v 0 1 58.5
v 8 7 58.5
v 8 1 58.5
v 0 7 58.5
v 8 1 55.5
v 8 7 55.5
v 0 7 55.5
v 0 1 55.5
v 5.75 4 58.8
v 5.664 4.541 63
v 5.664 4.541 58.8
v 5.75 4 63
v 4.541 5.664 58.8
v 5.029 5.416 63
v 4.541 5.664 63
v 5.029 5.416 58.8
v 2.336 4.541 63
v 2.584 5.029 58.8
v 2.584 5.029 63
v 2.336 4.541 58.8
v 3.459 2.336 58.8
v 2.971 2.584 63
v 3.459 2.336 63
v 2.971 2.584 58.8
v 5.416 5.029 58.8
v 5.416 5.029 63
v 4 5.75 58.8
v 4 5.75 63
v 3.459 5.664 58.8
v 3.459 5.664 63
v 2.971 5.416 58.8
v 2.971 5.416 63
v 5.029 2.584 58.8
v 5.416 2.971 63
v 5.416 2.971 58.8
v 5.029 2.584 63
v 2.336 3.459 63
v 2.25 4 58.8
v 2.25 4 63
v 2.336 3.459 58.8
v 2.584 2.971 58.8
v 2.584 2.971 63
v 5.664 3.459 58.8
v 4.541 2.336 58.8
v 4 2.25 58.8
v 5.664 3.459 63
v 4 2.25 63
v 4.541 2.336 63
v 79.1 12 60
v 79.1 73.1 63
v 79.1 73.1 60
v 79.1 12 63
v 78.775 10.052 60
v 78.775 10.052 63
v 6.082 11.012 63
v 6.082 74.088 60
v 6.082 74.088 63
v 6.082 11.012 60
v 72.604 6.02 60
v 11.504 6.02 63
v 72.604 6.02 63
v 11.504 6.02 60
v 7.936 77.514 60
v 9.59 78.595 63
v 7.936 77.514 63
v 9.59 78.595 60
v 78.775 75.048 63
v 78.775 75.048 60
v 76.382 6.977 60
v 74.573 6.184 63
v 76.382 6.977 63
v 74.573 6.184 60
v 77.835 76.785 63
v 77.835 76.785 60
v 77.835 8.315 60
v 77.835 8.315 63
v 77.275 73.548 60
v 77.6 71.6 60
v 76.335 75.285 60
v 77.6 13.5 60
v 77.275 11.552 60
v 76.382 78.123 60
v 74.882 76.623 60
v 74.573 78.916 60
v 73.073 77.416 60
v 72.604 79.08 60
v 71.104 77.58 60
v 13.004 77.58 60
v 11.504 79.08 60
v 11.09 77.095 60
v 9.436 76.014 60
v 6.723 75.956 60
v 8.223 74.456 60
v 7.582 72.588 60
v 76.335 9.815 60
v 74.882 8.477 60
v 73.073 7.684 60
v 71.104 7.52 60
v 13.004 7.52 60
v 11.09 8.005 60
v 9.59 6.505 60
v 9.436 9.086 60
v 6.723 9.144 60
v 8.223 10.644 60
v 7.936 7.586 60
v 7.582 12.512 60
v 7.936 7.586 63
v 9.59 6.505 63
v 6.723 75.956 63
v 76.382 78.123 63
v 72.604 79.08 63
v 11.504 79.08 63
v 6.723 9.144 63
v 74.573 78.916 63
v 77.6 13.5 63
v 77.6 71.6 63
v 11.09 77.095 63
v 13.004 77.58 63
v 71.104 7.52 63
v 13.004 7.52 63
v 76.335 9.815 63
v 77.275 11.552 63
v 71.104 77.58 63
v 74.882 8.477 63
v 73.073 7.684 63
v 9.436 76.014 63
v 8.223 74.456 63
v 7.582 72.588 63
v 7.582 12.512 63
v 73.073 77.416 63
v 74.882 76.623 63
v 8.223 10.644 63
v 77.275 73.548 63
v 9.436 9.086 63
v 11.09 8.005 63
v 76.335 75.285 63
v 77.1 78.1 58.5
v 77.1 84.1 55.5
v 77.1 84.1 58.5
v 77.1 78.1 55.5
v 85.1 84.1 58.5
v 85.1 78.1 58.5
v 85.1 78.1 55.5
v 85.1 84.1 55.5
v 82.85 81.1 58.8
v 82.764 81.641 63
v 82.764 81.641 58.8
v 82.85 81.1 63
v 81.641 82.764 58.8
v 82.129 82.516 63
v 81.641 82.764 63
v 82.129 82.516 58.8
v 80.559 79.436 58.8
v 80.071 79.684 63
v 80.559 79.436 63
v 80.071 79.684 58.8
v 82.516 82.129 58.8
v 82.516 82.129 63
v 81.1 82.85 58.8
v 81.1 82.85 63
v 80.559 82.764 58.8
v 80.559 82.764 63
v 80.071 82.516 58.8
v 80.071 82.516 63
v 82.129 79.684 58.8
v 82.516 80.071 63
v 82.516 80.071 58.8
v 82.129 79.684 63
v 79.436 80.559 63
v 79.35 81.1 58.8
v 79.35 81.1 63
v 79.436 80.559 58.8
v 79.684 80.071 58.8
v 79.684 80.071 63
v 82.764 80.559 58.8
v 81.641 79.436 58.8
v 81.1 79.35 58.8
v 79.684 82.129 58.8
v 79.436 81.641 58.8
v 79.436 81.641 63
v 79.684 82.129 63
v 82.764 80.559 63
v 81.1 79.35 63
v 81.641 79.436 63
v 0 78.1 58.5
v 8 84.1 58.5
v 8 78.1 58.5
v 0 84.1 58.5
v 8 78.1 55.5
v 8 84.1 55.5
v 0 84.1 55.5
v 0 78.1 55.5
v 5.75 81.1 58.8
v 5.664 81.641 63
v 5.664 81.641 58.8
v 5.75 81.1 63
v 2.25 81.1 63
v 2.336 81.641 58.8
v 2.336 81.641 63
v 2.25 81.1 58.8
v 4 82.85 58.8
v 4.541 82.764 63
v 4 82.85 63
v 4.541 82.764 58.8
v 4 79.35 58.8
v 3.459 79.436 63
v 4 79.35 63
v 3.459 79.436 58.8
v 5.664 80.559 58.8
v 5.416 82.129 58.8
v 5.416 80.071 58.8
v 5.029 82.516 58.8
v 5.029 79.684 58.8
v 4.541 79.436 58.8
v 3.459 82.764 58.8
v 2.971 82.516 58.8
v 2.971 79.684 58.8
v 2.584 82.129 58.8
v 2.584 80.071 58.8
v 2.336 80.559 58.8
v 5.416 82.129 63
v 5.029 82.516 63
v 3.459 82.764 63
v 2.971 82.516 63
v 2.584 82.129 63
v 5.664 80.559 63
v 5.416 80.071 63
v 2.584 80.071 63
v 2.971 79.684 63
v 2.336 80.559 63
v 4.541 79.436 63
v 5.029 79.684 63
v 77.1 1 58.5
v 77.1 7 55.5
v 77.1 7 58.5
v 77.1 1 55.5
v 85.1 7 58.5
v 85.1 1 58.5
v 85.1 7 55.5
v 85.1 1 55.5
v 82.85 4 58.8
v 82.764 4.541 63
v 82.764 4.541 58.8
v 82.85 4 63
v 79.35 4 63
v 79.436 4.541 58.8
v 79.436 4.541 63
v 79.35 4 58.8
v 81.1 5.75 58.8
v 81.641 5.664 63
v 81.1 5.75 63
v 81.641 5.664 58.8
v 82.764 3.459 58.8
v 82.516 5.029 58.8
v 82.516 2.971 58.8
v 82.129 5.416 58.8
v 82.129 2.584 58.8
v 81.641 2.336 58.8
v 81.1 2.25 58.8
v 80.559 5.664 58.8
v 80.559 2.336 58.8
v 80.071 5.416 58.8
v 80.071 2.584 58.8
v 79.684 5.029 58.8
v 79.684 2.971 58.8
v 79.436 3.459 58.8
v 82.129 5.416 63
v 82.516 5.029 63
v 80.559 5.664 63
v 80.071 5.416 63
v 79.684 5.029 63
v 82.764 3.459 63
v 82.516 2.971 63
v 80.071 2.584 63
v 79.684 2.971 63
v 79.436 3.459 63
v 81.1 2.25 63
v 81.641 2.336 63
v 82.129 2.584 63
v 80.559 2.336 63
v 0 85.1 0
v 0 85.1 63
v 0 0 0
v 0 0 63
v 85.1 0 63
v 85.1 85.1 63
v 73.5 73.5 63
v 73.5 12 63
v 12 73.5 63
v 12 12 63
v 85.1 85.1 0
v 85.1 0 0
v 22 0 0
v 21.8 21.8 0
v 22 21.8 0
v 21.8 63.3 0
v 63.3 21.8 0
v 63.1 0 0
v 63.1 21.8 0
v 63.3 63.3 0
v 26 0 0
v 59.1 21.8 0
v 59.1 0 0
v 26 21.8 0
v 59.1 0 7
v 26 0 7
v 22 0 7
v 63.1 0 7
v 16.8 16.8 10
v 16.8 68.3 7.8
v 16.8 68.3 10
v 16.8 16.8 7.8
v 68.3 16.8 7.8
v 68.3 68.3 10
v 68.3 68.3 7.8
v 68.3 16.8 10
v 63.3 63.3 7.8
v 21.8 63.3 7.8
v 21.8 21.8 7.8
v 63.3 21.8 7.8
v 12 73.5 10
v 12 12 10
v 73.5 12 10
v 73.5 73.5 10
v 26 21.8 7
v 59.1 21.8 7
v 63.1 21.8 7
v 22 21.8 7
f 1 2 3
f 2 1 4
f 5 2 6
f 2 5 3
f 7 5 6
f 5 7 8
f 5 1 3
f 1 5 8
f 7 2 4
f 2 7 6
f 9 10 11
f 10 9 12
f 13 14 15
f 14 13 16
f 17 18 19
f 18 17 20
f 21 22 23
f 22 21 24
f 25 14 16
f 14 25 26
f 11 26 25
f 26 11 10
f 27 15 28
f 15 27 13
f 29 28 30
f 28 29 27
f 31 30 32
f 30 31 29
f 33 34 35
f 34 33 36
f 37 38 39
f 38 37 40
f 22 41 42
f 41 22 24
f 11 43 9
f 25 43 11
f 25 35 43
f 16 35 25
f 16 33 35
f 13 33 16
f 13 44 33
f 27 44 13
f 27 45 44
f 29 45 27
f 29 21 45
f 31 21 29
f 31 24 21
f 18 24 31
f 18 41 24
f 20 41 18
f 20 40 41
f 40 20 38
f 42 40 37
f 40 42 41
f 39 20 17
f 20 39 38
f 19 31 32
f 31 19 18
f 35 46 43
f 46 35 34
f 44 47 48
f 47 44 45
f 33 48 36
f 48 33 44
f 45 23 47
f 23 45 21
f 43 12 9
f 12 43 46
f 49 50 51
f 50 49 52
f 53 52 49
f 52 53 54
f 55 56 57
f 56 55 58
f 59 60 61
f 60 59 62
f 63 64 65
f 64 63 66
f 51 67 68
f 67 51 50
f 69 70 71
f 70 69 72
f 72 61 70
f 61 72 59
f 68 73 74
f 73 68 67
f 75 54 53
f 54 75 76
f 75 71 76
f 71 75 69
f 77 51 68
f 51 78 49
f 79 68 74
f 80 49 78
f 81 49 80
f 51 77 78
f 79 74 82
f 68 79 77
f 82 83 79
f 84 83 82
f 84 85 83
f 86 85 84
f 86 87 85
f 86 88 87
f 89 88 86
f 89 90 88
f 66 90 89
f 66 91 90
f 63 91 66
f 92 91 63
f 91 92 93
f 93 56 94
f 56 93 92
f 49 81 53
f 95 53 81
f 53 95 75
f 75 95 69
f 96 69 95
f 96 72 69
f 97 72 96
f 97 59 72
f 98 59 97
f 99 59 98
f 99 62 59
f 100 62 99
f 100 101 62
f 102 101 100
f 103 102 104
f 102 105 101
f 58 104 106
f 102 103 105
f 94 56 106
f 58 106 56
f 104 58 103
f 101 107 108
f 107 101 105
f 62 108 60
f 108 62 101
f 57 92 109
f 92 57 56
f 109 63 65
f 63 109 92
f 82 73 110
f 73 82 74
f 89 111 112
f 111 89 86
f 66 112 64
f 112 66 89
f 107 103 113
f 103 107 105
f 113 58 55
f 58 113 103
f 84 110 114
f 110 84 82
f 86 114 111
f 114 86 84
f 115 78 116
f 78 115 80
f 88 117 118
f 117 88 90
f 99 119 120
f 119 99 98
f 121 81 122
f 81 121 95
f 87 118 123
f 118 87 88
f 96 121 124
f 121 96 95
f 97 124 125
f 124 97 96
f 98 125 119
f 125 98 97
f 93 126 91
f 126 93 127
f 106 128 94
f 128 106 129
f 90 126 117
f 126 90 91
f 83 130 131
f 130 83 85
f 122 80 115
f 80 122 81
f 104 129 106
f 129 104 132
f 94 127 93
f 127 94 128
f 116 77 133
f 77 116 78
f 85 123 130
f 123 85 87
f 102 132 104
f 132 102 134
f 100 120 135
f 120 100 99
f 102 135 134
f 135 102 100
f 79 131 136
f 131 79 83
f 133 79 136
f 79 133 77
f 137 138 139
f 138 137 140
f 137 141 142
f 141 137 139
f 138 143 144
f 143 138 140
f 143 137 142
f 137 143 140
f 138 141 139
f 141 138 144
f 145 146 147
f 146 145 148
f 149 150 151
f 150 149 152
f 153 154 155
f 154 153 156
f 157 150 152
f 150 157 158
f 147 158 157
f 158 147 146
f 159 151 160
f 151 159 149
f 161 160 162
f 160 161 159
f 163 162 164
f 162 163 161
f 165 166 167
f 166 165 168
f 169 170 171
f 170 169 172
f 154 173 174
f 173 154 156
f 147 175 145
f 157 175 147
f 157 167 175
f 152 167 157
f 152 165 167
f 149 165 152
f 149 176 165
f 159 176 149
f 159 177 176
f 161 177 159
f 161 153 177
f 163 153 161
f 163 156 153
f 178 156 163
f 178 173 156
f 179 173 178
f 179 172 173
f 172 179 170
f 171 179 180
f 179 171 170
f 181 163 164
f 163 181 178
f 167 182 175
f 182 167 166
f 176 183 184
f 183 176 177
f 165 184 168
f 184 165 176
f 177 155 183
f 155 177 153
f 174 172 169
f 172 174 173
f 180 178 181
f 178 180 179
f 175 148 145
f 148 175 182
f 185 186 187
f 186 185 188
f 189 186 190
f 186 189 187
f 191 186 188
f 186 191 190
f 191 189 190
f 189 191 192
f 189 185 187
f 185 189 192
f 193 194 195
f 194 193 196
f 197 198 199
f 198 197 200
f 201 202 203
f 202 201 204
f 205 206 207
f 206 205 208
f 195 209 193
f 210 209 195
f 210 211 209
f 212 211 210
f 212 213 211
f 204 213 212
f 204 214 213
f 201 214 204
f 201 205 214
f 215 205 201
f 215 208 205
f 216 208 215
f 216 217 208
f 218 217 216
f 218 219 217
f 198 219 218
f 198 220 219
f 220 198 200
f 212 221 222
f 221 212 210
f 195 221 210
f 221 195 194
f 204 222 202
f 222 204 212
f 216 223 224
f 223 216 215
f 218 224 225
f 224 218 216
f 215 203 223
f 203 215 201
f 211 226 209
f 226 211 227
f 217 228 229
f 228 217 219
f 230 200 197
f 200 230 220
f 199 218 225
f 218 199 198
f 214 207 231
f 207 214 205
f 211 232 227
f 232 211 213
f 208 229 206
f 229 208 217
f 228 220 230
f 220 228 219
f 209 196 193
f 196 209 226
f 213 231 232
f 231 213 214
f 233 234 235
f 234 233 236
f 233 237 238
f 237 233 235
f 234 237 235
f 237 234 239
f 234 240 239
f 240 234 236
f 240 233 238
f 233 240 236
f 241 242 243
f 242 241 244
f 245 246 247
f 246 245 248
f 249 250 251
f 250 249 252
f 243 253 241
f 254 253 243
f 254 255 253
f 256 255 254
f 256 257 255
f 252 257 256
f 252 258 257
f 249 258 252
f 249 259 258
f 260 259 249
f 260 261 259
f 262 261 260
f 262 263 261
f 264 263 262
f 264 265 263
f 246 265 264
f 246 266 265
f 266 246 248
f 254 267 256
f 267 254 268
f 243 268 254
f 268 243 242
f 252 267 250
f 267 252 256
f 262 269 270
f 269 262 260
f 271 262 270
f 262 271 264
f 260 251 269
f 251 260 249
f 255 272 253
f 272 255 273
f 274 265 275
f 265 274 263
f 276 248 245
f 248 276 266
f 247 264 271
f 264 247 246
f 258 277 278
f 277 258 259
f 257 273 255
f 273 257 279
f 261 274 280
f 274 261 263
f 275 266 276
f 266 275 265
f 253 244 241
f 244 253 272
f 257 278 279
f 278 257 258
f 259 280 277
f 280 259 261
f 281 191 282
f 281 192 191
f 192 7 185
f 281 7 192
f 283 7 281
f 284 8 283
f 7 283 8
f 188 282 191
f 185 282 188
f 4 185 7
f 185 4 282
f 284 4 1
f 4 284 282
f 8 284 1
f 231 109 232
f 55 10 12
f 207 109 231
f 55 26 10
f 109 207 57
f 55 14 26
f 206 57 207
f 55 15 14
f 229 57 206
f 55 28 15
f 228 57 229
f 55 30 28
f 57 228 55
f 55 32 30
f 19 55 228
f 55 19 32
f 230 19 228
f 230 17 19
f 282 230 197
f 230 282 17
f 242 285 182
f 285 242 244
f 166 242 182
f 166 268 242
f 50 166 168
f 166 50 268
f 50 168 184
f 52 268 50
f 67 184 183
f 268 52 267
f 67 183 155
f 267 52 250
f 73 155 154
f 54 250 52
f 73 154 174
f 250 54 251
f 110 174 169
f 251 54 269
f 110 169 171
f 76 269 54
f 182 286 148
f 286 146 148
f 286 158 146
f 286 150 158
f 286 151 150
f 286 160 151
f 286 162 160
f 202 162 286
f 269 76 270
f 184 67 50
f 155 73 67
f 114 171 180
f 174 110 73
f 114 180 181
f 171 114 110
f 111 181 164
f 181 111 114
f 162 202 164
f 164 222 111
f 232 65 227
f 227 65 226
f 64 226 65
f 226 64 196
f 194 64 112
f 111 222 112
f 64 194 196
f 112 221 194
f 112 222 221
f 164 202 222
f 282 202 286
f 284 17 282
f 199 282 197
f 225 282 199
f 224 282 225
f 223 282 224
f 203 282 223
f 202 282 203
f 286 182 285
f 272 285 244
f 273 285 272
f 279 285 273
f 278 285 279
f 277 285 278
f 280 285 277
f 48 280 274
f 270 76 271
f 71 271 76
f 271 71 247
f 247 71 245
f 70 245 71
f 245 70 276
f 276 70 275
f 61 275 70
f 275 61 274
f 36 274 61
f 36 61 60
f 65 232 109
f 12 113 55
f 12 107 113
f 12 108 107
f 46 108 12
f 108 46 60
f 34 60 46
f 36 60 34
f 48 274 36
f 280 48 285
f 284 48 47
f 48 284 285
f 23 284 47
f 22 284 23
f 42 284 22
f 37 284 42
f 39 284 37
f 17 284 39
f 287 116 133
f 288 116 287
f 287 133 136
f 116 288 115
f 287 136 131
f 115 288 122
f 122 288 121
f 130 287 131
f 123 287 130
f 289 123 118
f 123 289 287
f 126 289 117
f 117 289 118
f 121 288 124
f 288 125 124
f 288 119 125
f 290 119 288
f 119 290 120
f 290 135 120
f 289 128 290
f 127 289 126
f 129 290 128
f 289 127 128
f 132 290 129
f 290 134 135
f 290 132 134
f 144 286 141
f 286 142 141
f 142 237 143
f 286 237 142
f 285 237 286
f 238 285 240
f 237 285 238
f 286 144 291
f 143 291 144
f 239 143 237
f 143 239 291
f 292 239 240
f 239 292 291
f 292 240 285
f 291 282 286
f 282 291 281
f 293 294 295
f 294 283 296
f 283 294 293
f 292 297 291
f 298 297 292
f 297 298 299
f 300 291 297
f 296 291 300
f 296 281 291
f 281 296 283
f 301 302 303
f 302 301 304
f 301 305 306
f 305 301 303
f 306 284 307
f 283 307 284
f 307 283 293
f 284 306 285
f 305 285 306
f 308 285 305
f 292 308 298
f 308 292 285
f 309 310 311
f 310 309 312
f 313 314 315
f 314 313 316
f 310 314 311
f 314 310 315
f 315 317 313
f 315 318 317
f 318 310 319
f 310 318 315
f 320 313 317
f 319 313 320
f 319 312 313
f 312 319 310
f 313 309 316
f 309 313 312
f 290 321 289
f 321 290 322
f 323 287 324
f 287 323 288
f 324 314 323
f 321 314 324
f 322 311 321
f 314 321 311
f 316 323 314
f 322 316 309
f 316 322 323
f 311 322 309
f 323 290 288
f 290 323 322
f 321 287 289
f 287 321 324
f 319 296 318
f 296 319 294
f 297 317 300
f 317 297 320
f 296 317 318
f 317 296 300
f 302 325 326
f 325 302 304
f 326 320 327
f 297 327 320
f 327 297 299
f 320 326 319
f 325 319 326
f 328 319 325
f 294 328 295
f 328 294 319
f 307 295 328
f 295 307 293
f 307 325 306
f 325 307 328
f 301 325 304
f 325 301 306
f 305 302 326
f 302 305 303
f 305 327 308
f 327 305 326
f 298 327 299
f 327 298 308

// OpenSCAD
heatsink_xsize = 51.1;
heatsink_ysize = 51.1;
heatsink_zsize = 45;
heatsink_thickness = 2;

TEG_xsize = 41.1;
TEG_ysize = 41.1;
TEG_zsize = 8;

mount_hole = 3.5;       // mounting screw hole diameter
clearance = 0.2;      // spare clearance for printing tolerances. 
sealing_ring_width = 3;     // width of sealing gab under the cover
wall_thickness = 12;    // thickness of the box wall 
volume_encore = 10;     // space added to the size of internar heatsink

height = heatsink_zsize + TEG_zsize+volume_encore;

module box () {

    difference () {
        union (){
            cube([heatsink_xsize+2*wall_thickness+volume_encore,heatsink_ysize+2*wall_thickness+volume_encore,height]);          // overal plastic brick
    //            cube([heatsink_xsize+2*wall_thickness,heatsink_ysize+2*wall_thickness,heatsink_zsize+wall_thickness]);          // overal plastic brick
        }

        translate ([wall_thickness-clearance+volume_encore/2, wall_thickness-clearance+volume_encore/2, TEG_zsize-clearance])
            cube([heatsink_xsize+2*clearance, heatsink_ysize+2*clearance, heatsink_xsize+2*clearance]);          // hollow for heat sink
        
        translate ([wall_thickness, wall_thickness, TEG_zsize+heatsink_thickness])
            cube([heatsink_xsize+2*clearance+volume_encore, heatsink_ysize+2*clearance+volume_encore, heatsink_xsize+2*clearance+volume_encore]);          // hollow for heat storage liquid.

        translate ([((heatsink_xsize+2*wall_thickness+volume_encore)-TEG_xsize)/2 - clearance, ((heatsink_ysize+2*wall_thickness+volume_encore)-TEG_ysize)/2 - clearance, 0])
            cube([TEG_xsize+2*clearance, TEG_ysize+2*clearance, wall_thickness]);          // hollow for the thermoelectric generator

        translate ([((heatsink_xsize+2*wall_thickness+volume_encore)-TEG_xsize)/2, 0, 0])
            cube([4, wall_thickness+volume_encore, TEG_zsize-1]);          // hollow for the thermoelectric generator
        translate ([((heatsink_xsize+2*wall_thickness+volume_encore)-TEG_xsize)/2 +TEG_xsize-4, 0, 0])
            cube([4, wall_thickness+volume_encore, TEG_zsize-1]);          // hollow for the thermoelectric generator
        
        
        translate ([wall_thickness, wall_thickness, height-sealing_ring_width])
        union () {
            difference () {
                minkowski() {
                    cube([heatsink_xsize+volume_encore, heatsink_xsize+volume_encore, sealing_ring_width]);          // Rib for o-ring. 
                    cylinder(r=wall_thickness/2,h=0.1);
                }

                translate ([sealing_ring_width/2, sealing_ring_width/2, 0])
                minkowski() {
                    cube([heatsink_xsize-sealing_ring_width+volume_encore, heatsink_ysize-sealing_ring_width+volume_encore, sealing_ring_width]);          // Rib for o-ring. 
                    cylinder(r=wall_thickness/2,h=0.1);
                }
            }
        }
        
        translate ([ heatsink_xsize+2*wall_thickness-wall_thickness/3+volume_encore, heatsink_xsize+2*wall_thickness+volume_encore-wall_thickness/3, height-wall_thickness/2])
        {
                translate([-4, -3, -1.5])
                cube([wall_thickness, 6, 3], center = false); // hole for top part mounting nut
                translate([0, 0, 1.8])
                cylinder (h = wall_thickness, r= mount_hole/2, $fn=20); // hole for top part mounting screw.
        }

        translate ([wall_thickness/3, wall_thickness/3, height-wall_thickness/2])
        {
                translate([-8, -3, -1.5])
                cube([wall_thickness, 6, 3], center = false); // hole for top part mounting nut
                translate([0, 0, 1.8])
                cylinder (h = wall_thickness, r= mount_hole/2, $fn=20); // hole for top part mounting screw.
        }
        
        translate ([wall_thickness/3, heatsink_xsize+2*wall_thickness+volume_encore-wall_thickness/3, height-wall_thickness/2])
        {
                translate([-8, -3, -1.5])
                cube([wall_thickness, 6, 3], center = false); // hole for top part mounting nut
                translate([0, 0, 1.8])
                cylinder (h = wall_thickness, r= mount_hole/2, $fn=20); // hole for top part mounting screw.
        }

        translate ([ heatsink_xsize+2*wall_thickness-wall_thickness/3+volume_encore, wall_thickness/3,height-wall_thickness/2])
        {
                translate([-4, -3, -1.5])
                cube([wall_thickness, 6, 3], center = false); // hole for top part mounting nut
                translate([0, 0, 1.8])
                cylinder (h = wall_thickness, r= mount_hole/2, $fn=20); // hole for top part mounting screw.
        }

    }
}



// Heat reservoir cover
module cover (){
    translate ([0, 0, 3*height])
    {
            difference () {

                cube([heatsink_xsize+2*wall_thickness+volume_encore,heatsink_ysize+2*wall_thickness+volume_encore,wall_thickness]);
                
                translate ([ heatsink_xsize+2*wall_thickness-wall_thickness/3+volume_encore, wall_thickness/3,0])
                {
                        cylinder (h = wall_thickness, r= mount_hole/2, $fn=20); // hole for top part mounting screw.
                }
                translate ([wall_thickness/3, wall_thickness/3,0])
                {
                        cylinder (h = wall_thickness, r= mount_hole/2, $fn=20); // hole for top part mounting screw.
                }
                translate ([ heatsink_xsize+2*wall_thickness-wall_thickness/3+volume_encore, heatsink_ysize+2*wall_thickness-wall_thickness/3+volume_encore,0])
                {
                        cylinder (h = wall_thickness, r= mount_hole/2, $fn=20); // hole for top part mounting screw.
                }
                translate ([wall_thickness/3, heatsink_ysize+2*wall_thickness-wall_thickness/3+volume_encore,0])
                {
                        cylinder (h = wall_thickness, r= mount_hole/2, $fn=20); // hole for top part mounting screw.
                }
            }
    }
}

//cover ();
box();
